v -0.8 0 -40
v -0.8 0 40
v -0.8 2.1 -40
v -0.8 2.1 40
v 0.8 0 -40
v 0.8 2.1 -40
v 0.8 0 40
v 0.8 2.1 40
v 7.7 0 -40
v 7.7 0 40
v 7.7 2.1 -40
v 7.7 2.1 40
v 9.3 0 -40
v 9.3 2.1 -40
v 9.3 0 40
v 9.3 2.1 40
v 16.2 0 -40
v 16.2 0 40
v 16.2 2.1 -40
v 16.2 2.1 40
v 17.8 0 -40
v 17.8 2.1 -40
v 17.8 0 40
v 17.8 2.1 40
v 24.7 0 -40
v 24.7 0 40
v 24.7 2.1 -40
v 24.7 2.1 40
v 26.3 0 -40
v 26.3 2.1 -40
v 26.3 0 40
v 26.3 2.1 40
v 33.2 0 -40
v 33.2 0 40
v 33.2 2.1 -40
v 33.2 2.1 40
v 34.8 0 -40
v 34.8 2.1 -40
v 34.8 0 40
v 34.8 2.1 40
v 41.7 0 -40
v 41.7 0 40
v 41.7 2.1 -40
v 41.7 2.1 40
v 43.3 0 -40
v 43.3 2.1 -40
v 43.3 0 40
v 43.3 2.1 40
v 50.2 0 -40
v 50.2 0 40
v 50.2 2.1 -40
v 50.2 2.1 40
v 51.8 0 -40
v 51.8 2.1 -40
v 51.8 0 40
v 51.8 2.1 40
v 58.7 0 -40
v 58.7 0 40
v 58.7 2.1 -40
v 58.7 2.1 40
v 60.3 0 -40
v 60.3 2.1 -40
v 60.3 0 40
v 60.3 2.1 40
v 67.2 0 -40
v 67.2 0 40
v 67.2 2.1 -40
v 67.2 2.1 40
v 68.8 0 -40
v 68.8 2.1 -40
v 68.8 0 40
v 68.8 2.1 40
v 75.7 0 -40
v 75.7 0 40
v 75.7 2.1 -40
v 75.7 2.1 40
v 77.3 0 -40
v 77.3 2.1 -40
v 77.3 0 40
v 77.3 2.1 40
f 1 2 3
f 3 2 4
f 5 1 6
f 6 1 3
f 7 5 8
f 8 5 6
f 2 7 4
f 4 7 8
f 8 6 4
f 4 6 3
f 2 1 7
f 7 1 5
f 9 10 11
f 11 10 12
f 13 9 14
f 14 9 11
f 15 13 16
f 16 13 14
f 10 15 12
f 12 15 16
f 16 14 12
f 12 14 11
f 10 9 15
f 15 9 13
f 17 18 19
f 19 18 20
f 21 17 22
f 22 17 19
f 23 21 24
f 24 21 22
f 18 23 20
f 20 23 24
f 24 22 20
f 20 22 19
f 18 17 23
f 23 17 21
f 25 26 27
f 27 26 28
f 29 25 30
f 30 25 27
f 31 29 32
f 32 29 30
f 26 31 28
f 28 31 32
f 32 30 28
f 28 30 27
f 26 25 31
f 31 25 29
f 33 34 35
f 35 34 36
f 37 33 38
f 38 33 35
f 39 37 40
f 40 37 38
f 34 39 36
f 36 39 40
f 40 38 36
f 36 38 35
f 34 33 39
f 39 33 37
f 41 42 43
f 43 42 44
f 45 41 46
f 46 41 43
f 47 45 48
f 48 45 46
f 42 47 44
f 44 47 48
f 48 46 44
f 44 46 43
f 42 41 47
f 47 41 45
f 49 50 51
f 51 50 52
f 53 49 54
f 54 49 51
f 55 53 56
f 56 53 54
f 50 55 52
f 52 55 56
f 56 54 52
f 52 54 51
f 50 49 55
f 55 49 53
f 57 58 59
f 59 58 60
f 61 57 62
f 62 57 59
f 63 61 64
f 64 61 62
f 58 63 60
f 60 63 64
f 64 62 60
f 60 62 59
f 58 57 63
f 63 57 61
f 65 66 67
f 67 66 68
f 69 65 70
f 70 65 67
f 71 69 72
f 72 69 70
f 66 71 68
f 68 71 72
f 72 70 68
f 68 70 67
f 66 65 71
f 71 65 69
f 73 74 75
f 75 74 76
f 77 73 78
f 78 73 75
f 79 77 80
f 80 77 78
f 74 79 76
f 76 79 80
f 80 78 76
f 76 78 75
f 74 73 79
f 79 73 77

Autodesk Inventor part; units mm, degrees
ref_plane "YZ Plane" through (0, 0, 0) normal (1, 0, 0) x (0, 1, 0)
ref_plane "XZ Plane" through (0, 0, 0) normal (0, 1, 0) x (-1, 0, 0)
ref_plane "XY Plane" through (0, 0, 0) normal (0, 0, 1) x (1, 0, 0)
sketch "Sketch1" plane through (0, 0, 0) normal (0, 1, 0) x (-1, 0, 0)
  line L0 (0.8, -40) -> (-0.8, -40)
  line L1 (-0.8, -40) -> (-0.8, 40)
  line L2 (-0.8, 40) -> (0.8, 40)
  line L3 (0.8, 40) -> (0.8, -40)
  line L4 (0.8, -40) -> (-0.8, 40) construction
  line L5 (-0.8, -40) -> (0.8, 40) construction
  point P0 (0, 0)
  dimension "d0" = 80
  dimension "d1" = 1.6
extrude "Extrusion1" add sketch "Sketch1" along normal blind 2.1
pattern_linear "Rectangular Pattern1" count 10 spacing 8.5 along (1, 0, 0) of "Extrusion1"
equation "\"base_add\" = 0.6"
properties part number "structure1"
